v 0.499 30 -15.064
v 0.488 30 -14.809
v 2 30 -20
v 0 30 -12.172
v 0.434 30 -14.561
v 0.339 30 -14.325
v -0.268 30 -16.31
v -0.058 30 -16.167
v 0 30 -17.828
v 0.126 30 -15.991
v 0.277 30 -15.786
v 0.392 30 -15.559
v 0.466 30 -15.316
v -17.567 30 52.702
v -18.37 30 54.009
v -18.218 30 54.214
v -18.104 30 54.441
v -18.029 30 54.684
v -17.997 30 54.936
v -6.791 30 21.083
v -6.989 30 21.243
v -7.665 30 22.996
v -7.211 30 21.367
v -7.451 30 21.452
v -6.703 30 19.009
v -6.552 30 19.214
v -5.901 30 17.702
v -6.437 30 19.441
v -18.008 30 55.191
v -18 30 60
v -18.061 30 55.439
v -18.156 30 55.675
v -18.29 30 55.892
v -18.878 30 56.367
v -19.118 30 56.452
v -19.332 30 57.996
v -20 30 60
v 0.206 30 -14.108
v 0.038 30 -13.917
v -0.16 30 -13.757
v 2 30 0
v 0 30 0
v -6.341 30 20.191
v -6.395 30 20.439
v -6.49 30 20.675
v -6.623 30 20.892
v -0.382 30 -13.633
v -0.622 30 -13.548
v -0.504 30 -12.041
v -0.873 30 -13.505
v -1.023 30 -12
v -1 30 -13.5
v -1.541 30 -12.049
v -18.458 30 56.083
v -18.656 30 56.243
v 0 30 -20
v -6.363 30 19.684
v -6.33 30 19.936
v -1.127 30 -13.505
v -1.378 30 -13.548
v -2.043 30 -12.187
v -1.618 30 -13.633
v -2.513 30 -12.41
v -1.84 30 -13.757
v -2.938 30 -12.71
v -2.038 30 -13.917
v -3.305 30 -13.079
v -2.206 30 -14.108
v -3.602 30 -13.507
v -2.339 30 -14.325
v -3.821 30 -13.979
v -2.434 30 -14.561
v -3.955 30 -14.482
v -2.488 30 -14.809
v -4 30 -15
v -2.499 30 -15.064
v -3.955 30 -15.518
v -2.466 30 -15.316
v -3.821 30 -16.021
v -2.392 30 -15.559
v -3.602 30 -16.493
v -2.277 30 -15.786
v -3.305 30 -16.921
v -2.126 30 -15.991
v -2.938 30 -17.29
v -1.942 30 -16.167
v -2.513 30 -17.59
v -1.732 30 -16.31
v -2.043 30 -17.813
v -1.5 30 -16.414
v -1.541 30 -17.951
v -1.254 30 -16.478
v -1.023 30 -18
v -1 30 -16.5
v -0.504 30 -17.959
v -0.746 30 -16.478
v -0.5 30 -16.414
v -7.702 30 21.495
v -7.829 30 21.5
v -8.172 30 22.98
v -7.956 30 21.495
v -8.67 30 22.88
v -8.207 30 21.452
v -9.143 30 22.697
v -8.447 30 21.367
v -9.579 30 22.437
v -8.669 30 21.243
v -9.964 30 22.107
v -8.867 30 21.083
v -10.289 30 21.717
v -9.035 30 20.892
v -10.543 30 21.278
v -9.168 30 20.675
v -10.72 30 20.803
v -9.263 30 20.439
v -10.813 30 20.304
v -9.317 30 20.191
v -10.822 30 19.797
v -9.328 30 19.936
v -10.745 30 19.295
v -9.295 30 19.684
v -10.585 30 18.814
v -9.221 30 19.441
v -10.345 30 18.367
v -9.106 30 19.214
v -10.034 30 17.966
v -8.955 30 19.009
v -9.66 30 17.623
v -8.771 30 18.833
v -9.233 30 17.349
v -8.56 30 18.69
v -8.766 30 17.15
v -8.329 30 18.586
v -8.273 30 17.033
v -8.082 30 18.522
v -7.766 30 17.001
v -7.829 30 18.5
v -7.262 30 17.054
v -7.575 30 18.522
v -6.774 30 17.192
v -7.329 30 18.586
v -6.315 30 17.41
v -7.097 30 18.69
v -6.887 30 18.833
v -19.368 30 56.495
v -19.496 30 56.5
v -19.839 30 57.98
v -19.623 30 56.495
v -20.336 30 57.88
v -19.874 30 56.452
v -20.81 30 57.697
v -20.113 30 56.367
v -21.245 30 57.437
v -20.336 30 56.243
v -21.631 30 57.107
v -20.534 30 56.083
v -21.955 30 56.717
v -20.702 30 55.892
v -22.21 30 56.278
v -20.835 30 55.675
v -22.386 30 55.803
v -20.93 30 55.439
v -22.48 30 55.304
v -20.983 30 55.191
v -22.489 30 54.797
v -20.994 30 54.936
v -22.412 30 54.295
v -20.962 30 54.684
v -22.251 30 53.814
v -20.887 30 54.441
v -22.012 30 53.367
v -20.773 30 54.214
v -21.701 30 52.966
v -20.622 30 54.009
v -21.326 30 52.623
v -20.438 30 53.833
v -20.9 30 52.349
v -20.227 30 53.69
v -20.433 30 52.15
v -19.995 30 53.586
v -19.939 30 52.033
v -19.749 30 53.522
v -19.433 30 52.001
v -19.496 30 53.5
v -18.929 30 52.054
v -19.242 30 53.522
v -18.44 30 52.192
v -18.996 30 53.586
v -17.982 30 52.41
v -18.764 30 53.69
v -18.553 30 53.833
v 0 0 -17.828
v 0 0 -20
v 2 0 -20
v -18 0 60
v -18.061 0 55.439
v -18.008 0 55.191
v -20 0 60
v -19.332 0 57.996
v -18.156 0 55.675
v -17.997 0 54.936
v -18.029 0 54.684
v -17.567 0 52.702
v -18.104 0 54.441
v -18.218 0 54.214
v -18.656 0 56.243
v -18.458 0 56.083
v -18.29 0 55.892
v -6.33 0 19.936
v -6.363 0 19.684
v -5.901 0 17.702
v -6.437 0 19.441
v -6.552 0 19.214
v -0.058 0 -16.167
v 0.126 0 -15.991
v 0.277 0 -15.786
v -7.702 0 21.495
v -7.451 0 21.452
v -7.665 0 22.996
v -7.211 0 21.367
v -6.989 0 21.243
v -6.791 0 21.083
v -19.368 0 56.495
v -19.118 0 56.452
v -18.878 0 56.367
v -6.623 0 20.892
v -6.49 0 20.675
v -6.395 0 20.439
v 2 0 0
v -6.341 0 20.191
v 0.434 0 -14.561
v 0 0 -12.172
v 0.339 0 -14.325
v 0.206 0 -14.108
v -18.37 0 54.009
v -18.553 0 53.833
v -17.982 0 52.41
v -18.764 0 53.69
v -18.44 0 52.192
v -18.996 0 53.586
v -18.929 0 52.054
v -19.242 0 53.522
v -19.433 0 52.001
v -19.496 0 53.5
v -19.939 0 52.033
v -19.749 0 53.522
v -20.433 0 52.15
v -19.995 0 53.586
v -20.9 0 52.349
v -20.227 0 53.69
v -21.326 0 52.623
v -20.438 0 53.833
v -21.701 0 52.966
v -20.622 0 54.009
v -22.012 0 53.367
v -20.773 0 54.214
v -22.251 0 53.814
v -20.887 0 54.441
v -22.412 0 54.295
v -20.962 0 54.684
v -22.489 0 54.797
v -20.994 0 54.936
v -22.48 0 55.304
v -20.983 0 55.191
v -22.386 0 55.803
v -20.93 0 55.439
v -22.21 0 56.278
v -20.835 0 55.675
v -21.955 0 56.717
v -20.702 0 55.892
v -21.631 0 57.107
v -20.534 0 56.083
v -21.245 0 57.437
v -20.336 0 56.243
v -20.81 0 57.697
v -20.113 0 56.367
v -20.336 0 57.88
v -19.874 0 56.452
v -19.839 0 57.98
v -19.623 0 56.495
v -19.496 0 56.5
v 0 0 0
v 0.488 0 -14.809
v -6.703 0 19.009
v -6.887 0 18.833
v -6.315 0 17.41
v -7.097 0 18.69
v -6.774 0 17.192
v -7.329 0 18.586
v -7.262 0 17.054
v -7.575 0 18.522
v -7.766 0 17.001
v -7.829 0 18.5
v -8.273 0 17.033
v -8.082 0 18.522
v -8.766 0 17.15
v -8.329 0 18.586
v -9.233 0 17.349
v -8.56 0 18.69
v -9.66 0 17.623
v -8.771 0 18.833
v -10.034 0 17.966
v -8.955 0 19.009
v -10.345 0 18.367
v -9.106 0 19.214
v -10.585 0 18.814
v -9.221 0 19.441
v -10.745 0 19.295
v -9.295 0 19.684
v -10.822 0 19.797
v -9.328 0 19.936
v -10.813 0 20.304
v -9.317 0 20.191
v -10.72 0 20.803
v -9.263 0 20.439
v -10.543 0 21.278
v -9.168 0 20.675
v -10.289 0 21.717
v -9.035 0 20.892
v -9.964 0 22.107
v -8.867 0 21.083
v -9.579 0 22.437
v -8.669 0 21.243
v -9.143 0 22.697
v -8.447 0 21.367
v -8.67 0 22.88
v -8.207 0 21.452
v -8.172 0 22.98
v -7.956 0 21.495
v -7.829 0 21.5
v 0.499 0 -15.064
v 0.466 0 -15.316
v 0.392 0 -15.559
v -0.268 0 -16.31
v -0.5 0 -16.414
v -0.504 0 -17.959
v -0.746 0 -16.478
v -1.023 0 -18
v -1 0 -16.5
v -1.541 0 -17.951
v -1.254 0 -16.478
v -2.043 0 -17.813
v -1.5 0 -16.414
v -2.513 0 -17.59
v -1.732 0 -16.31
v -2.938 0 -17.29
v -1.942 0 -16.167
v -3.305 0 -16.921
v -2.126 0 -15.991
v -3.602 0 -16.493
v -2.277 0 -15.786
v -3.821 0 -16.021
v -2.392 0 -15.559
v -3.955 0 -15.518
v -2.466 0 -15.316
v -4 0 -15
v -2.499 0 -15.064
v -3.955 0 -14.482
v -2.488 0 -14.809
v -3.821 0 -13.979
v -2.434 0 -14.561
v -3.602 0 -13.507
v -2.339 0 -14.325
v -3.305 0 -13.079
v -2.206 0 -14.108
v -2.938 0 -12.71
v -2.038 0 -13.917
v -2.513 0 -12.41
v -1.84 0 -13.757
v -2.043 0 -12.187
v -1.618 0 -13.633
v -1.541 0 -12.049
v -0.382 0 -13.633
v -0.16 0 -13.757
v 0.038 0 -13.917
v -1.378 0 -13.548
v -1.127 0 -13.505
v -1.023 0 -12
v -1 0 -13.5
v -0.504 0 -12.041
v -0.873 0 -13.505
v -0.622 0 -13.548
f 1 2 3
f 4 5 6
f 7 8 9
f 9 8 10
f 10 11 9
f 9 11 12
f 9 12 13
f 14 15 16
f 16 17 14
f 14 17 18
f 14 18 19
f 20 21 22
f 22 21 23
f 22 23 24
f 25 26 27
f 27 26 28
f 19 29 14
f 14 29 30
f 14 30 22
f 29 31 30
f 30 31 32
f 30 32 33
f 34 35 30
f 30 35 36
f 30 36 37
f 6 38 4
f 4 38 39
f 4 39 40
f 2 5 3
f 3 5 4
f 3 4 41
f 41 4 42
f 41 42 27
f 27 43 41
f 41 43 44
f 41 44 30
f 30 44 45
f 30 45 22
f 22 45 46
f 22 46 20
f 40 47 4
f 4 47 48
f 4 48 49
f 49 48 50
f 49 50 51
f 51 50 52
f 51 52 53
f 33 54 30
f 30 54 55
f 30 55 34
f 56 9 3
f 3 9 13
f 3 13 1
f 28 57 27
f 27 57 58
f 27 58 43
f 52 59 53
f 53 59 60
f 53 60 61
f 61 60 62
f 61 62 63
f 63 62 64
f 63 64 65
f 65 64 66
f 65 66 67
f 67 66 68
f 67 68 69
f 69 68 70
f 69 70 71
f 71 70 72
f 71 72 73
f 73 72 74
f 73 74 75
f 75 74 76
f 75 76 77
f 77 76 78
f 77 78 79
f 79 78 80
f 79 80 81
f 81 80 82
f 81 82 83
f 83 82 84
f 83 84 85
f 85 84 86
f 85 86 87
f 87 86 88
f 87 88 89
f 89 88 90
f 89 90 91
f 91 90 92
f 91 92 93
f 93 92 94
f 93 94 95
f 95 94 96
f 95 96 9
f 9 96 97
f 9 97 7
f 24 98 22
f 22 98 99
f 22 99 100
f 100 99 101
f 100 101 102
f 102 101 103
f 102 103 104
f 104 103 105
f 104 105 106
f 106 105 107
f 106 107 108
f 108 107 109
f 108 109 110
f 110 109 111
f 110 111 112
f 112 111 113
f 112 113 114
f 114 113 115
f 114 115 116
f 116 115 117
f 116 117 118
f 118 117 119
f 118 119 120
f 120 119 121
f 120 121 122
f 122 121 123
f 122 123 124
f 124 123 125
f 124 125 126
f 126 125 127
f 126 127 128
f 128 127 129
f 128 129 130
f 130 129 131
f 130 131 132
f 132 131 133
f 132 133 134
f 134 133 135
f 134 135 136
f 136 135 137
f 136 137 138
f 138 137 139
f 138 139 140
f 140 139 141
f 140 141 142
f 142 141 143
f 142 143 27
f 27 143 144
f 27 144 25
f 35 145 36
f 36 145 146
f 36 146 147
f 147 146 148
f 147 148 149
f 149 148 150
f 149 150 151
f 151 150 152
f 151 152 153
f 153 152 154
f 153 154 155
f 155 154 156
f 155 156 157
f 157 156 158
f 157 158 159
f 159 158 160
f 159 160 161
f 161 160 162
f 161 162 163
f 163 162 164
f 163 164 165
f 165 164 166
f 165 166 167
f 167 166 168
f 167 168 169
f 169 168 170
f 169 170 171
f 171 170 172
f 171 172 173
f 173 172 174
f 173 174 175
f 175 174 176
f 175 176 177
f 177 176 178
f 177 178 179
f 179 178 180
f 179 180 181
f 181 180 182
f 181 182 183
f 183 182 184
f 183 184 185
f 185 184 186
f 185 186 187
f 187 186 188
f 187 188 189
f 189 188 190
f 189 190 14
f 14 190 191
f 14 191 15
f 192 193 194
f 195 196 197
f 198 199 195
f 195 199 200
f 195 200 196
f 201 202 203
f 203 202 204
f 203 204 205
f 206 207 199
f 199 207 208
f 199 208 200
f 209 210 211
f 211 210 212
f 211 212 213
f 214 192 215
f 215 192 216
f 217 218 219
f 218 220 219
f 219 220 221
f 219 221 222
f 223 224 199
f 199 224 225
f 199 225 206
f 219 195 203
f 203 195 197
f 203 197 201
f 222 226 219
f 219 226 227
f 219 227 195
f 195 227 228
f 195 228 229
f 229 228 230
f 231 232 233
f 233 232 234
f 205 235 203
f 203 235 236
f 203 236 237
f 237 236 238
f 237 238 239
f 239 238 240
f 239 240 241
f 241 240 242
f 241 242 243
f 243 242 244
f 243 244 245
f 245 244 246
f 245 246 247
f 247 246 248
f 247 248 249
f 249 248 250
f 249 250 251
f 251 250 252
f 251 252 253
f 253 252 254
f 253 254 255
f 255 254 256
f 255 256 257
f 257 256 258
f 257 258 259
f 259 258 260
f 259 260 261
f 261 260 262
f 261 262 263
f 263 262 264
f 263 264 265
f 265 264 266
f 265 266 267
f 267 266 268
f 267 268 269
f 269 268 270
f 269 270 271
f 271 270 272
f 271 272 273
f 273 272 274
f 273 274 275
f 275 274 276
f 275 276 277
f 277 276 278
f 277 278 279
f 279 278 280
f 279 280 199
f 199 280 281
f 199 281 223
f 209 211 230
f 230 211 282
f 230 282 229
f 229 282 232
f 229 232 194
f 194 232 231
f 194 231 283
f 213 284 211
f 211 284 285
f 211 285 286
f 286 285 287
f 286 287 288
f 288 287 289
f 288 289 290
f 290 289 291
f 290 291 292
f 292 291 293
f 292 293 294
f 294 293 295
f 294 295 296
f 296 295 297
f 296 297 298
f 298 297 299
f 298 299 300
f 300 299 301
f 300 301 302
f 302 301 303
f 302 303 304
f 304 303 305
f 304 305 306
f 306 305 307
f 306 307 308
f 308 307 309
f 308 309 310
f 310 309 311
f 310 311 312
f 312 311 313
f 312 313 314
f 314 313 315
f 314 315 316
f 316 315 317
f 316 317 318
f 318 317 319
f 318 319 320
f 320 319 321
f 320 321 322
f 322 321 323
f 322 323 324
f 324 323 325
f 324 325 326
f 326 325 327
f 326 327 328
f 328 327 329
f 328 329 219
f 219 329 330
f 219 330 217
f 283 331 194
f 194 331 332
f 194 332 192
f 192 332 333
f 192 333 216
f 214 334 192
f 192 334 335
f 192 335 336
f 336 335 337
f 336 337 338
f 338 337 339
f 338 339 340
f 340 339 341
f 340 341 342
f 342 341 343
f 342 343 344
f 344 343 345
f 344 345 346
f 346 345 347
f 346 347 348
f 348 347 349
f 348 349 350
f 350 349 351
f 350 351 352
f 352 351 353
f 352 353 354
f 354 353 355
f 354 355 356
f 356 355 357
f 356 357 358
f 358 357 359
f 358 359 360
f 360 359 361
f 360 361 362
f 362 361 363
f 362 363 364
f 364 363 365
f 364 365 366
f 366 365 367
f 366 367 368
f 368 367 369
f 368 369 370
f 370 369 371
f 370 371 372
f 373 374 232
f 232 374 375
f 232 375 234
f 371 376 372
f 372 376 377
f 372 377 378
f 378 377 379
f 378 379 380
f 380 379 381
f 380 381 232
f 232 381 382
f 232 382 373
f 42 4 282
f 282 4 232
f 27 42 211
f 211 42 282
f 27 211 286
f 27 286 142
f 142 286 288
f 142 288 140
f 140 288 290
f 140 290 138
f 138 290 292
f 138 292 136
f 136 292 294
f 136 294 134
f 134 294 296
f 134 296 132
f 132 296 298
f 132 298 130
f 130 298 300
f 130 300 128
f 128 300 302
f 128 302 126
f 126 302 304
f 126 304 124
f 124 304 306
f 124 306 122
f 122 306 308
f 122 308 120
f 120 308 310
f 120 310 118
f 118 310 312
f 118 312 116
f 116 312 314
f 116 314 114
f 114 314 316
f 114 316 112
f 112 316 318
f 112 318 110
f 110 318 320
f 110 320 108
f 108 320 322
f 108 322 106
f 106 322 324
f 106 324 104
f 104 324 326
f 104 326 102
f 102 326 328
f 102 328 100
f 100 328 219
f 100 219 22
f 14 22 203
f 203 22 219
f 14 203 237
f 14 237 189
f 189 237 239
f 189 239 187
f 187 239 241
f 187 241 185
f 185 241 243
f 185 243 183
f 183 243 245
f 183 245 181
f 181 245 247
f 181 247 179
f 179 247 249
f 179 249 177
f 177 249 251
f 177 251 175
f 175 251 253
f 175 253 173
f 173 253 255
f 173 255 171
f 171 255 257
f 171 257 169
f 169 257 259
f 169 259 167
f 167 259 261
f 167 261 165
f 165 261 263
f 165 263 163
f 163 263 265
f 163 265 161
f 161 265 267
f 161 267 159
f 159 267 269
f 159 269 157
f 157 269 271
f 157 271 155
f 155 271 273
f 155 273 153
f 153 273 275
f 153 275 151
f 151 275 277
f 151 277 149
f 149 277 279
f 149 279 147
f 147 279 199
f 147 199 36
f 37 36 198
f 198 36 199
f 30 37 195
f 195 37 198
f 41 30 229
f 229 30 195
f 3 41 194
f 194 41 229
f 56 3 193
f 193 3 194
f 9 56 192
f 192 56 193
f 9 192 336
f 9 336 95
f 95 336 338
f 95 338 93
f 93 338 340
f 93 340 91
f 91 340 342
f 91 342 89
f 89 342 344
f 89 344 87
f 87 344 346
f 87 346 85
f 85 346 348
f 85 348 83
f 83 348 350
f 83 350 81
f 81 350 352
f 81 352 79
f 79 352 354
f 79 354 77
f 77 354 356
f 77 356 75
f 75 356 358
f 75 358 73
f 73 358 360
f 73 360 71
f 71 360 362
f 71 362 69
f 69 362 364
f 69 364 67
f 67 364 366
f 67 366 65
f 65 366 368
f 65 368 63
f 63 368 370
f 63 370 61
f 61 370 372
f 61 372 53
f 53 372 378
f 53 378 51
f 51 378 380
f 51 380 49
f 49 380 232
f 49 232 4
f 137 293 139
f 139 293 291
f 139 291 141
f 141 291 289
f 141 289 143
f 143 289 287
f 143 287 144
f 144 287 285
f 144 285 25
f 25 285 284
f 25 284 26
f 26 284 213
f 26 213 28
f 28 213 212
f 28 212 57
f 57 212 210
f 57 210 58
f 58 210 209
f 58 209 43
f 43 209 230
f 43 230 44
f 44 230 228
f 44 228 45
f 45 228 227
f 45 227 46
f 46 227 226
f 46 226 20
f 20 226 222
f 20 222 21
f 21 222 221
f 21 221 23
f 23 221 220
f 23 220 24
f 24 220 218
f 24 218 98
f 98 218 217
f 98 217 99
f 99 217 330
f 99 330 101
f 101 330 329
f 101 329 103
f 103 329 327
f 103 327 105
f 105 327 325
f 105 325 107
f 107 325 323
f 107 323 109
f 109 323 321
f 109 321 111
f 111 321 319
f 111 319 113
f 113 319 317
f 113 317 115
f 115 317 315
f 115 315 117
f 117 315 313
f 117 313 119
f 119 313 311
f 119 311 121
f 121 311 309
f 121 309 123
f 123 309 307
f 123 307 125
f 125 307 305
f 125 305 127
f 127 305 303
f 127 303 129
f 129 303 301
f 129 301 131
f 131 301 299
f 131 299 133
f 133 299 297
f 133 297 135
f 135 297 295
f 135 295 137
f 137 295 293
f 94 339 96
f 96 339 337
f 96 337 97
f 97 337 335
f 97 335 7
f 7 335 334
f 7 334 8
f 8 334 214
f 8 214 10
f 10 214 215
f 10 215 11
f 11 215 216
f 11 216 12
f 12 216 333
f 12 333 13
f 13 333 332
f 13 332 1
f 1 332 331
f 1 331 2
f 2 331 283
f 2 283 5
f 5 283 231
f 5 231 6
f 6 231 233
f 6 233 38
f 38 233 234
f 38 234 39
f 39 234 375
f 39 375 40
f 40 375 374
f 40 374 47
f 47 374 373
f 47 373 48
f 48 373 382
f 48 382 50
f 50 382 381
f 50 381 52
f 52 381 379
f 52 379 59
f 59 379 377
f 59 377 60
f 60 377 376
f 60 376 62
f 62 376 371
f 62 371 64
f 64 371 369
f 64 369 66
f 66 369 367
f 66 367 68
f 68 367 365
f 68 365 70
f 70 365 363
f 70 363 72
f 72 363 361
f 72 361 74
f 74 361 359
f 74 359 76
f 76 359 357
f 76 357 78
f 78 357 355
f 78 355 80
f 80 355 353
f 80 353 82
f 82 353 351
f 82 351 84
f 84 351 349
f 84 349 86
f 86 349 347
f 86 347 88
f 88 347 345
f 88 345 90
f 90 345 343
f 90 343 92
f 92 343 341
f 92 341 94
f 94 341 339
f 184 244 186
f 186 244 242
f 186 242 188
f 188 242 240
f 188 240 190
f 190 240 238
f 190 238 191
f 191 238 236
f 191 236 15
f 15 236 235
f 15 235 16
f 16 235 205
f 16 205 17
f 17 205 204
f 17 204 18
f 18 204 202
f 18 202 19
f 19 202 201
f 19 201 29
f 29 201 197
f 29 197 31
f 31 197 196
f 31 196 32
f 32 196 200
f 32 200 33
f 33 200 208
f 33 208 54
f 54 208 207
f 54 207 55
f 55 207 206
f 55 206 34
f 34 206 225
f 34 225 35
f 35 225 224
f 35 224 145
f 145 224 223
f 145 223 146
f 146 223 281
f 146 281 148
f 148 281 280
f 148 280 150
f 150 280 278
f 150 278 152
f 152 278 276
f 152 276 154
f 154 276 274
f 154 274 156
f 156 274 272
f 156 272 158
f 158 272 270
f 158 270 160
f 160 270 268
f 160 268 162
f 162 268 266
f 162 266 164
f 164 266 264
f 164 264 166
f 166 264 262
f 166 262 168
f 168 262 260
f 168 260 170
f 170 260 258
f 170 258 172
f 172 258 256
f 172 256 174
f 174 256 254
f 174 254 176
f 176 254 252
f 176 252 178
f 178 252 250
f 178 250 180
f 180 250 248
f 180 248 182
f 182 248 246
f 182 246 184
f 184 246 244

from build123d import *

# Parameters (mm, degrees)
SKETCH_1_R      = 1.5
EXTRUDE_1_DEPTH = 30


with BuildPart() as part:
    # 草图1 → 凸台-拉伸1 (new body)
    with BuildSketch(Plane(origin=(0, 0, 0), x_dir=(1, 0, 0), z_dir=(0, 1, 0))):
        with BuildLine():
            Line((0, 0), (-5.900613322, -17.701839967))
            ThreePointArc((-5.900613322, -17.701839967), (-10.674994221, -19.051316702), (-7.665175543, -22.995526629))
            Line((-7.665175543, -22.995526629), (-17.567279989, -52.701839967))
            ThreePointArc((-17.567279989, -52.701839967), (-22.341660888, -54.051316702), (-19.33184221, -57.995526629))
            Line((-19.33184221, -57.995526629), (-20, -60))
            Line((-20, -60), (-18, -60))
            Line((-18, -60), (2, 0))
            Line((2, 0), (2, 20))
            Line((2, 20), (0, 20))
            Line((0, 20), (0, 17.828427125))
            ThreePointArc((0, 17.828427125), (-4, 15), (0, 12.171572875))
            Line((0, 12.171572875), (0, 0))
        make_face()
        with Locations(Location((-7.828944327, -20, 0), (0, 0, 270))):
            Circle(SKETCH_1_R, mode=Mode.SUBTRACT)
        with Locations(Location((-1, 15, 0), (0, 0, 270))):
            Circle(SKETCH_1_R, mode=Mode.SUBTRACT)
        with Locations(Location((-19.495610994, -55, 0), (0, 0, 270))):
            Circle(SKETCH_1_R, mode=Mode.SUBTRACT)
    extrude(amount=EXTRUDE_1_DEPTH)


solid = part.part
